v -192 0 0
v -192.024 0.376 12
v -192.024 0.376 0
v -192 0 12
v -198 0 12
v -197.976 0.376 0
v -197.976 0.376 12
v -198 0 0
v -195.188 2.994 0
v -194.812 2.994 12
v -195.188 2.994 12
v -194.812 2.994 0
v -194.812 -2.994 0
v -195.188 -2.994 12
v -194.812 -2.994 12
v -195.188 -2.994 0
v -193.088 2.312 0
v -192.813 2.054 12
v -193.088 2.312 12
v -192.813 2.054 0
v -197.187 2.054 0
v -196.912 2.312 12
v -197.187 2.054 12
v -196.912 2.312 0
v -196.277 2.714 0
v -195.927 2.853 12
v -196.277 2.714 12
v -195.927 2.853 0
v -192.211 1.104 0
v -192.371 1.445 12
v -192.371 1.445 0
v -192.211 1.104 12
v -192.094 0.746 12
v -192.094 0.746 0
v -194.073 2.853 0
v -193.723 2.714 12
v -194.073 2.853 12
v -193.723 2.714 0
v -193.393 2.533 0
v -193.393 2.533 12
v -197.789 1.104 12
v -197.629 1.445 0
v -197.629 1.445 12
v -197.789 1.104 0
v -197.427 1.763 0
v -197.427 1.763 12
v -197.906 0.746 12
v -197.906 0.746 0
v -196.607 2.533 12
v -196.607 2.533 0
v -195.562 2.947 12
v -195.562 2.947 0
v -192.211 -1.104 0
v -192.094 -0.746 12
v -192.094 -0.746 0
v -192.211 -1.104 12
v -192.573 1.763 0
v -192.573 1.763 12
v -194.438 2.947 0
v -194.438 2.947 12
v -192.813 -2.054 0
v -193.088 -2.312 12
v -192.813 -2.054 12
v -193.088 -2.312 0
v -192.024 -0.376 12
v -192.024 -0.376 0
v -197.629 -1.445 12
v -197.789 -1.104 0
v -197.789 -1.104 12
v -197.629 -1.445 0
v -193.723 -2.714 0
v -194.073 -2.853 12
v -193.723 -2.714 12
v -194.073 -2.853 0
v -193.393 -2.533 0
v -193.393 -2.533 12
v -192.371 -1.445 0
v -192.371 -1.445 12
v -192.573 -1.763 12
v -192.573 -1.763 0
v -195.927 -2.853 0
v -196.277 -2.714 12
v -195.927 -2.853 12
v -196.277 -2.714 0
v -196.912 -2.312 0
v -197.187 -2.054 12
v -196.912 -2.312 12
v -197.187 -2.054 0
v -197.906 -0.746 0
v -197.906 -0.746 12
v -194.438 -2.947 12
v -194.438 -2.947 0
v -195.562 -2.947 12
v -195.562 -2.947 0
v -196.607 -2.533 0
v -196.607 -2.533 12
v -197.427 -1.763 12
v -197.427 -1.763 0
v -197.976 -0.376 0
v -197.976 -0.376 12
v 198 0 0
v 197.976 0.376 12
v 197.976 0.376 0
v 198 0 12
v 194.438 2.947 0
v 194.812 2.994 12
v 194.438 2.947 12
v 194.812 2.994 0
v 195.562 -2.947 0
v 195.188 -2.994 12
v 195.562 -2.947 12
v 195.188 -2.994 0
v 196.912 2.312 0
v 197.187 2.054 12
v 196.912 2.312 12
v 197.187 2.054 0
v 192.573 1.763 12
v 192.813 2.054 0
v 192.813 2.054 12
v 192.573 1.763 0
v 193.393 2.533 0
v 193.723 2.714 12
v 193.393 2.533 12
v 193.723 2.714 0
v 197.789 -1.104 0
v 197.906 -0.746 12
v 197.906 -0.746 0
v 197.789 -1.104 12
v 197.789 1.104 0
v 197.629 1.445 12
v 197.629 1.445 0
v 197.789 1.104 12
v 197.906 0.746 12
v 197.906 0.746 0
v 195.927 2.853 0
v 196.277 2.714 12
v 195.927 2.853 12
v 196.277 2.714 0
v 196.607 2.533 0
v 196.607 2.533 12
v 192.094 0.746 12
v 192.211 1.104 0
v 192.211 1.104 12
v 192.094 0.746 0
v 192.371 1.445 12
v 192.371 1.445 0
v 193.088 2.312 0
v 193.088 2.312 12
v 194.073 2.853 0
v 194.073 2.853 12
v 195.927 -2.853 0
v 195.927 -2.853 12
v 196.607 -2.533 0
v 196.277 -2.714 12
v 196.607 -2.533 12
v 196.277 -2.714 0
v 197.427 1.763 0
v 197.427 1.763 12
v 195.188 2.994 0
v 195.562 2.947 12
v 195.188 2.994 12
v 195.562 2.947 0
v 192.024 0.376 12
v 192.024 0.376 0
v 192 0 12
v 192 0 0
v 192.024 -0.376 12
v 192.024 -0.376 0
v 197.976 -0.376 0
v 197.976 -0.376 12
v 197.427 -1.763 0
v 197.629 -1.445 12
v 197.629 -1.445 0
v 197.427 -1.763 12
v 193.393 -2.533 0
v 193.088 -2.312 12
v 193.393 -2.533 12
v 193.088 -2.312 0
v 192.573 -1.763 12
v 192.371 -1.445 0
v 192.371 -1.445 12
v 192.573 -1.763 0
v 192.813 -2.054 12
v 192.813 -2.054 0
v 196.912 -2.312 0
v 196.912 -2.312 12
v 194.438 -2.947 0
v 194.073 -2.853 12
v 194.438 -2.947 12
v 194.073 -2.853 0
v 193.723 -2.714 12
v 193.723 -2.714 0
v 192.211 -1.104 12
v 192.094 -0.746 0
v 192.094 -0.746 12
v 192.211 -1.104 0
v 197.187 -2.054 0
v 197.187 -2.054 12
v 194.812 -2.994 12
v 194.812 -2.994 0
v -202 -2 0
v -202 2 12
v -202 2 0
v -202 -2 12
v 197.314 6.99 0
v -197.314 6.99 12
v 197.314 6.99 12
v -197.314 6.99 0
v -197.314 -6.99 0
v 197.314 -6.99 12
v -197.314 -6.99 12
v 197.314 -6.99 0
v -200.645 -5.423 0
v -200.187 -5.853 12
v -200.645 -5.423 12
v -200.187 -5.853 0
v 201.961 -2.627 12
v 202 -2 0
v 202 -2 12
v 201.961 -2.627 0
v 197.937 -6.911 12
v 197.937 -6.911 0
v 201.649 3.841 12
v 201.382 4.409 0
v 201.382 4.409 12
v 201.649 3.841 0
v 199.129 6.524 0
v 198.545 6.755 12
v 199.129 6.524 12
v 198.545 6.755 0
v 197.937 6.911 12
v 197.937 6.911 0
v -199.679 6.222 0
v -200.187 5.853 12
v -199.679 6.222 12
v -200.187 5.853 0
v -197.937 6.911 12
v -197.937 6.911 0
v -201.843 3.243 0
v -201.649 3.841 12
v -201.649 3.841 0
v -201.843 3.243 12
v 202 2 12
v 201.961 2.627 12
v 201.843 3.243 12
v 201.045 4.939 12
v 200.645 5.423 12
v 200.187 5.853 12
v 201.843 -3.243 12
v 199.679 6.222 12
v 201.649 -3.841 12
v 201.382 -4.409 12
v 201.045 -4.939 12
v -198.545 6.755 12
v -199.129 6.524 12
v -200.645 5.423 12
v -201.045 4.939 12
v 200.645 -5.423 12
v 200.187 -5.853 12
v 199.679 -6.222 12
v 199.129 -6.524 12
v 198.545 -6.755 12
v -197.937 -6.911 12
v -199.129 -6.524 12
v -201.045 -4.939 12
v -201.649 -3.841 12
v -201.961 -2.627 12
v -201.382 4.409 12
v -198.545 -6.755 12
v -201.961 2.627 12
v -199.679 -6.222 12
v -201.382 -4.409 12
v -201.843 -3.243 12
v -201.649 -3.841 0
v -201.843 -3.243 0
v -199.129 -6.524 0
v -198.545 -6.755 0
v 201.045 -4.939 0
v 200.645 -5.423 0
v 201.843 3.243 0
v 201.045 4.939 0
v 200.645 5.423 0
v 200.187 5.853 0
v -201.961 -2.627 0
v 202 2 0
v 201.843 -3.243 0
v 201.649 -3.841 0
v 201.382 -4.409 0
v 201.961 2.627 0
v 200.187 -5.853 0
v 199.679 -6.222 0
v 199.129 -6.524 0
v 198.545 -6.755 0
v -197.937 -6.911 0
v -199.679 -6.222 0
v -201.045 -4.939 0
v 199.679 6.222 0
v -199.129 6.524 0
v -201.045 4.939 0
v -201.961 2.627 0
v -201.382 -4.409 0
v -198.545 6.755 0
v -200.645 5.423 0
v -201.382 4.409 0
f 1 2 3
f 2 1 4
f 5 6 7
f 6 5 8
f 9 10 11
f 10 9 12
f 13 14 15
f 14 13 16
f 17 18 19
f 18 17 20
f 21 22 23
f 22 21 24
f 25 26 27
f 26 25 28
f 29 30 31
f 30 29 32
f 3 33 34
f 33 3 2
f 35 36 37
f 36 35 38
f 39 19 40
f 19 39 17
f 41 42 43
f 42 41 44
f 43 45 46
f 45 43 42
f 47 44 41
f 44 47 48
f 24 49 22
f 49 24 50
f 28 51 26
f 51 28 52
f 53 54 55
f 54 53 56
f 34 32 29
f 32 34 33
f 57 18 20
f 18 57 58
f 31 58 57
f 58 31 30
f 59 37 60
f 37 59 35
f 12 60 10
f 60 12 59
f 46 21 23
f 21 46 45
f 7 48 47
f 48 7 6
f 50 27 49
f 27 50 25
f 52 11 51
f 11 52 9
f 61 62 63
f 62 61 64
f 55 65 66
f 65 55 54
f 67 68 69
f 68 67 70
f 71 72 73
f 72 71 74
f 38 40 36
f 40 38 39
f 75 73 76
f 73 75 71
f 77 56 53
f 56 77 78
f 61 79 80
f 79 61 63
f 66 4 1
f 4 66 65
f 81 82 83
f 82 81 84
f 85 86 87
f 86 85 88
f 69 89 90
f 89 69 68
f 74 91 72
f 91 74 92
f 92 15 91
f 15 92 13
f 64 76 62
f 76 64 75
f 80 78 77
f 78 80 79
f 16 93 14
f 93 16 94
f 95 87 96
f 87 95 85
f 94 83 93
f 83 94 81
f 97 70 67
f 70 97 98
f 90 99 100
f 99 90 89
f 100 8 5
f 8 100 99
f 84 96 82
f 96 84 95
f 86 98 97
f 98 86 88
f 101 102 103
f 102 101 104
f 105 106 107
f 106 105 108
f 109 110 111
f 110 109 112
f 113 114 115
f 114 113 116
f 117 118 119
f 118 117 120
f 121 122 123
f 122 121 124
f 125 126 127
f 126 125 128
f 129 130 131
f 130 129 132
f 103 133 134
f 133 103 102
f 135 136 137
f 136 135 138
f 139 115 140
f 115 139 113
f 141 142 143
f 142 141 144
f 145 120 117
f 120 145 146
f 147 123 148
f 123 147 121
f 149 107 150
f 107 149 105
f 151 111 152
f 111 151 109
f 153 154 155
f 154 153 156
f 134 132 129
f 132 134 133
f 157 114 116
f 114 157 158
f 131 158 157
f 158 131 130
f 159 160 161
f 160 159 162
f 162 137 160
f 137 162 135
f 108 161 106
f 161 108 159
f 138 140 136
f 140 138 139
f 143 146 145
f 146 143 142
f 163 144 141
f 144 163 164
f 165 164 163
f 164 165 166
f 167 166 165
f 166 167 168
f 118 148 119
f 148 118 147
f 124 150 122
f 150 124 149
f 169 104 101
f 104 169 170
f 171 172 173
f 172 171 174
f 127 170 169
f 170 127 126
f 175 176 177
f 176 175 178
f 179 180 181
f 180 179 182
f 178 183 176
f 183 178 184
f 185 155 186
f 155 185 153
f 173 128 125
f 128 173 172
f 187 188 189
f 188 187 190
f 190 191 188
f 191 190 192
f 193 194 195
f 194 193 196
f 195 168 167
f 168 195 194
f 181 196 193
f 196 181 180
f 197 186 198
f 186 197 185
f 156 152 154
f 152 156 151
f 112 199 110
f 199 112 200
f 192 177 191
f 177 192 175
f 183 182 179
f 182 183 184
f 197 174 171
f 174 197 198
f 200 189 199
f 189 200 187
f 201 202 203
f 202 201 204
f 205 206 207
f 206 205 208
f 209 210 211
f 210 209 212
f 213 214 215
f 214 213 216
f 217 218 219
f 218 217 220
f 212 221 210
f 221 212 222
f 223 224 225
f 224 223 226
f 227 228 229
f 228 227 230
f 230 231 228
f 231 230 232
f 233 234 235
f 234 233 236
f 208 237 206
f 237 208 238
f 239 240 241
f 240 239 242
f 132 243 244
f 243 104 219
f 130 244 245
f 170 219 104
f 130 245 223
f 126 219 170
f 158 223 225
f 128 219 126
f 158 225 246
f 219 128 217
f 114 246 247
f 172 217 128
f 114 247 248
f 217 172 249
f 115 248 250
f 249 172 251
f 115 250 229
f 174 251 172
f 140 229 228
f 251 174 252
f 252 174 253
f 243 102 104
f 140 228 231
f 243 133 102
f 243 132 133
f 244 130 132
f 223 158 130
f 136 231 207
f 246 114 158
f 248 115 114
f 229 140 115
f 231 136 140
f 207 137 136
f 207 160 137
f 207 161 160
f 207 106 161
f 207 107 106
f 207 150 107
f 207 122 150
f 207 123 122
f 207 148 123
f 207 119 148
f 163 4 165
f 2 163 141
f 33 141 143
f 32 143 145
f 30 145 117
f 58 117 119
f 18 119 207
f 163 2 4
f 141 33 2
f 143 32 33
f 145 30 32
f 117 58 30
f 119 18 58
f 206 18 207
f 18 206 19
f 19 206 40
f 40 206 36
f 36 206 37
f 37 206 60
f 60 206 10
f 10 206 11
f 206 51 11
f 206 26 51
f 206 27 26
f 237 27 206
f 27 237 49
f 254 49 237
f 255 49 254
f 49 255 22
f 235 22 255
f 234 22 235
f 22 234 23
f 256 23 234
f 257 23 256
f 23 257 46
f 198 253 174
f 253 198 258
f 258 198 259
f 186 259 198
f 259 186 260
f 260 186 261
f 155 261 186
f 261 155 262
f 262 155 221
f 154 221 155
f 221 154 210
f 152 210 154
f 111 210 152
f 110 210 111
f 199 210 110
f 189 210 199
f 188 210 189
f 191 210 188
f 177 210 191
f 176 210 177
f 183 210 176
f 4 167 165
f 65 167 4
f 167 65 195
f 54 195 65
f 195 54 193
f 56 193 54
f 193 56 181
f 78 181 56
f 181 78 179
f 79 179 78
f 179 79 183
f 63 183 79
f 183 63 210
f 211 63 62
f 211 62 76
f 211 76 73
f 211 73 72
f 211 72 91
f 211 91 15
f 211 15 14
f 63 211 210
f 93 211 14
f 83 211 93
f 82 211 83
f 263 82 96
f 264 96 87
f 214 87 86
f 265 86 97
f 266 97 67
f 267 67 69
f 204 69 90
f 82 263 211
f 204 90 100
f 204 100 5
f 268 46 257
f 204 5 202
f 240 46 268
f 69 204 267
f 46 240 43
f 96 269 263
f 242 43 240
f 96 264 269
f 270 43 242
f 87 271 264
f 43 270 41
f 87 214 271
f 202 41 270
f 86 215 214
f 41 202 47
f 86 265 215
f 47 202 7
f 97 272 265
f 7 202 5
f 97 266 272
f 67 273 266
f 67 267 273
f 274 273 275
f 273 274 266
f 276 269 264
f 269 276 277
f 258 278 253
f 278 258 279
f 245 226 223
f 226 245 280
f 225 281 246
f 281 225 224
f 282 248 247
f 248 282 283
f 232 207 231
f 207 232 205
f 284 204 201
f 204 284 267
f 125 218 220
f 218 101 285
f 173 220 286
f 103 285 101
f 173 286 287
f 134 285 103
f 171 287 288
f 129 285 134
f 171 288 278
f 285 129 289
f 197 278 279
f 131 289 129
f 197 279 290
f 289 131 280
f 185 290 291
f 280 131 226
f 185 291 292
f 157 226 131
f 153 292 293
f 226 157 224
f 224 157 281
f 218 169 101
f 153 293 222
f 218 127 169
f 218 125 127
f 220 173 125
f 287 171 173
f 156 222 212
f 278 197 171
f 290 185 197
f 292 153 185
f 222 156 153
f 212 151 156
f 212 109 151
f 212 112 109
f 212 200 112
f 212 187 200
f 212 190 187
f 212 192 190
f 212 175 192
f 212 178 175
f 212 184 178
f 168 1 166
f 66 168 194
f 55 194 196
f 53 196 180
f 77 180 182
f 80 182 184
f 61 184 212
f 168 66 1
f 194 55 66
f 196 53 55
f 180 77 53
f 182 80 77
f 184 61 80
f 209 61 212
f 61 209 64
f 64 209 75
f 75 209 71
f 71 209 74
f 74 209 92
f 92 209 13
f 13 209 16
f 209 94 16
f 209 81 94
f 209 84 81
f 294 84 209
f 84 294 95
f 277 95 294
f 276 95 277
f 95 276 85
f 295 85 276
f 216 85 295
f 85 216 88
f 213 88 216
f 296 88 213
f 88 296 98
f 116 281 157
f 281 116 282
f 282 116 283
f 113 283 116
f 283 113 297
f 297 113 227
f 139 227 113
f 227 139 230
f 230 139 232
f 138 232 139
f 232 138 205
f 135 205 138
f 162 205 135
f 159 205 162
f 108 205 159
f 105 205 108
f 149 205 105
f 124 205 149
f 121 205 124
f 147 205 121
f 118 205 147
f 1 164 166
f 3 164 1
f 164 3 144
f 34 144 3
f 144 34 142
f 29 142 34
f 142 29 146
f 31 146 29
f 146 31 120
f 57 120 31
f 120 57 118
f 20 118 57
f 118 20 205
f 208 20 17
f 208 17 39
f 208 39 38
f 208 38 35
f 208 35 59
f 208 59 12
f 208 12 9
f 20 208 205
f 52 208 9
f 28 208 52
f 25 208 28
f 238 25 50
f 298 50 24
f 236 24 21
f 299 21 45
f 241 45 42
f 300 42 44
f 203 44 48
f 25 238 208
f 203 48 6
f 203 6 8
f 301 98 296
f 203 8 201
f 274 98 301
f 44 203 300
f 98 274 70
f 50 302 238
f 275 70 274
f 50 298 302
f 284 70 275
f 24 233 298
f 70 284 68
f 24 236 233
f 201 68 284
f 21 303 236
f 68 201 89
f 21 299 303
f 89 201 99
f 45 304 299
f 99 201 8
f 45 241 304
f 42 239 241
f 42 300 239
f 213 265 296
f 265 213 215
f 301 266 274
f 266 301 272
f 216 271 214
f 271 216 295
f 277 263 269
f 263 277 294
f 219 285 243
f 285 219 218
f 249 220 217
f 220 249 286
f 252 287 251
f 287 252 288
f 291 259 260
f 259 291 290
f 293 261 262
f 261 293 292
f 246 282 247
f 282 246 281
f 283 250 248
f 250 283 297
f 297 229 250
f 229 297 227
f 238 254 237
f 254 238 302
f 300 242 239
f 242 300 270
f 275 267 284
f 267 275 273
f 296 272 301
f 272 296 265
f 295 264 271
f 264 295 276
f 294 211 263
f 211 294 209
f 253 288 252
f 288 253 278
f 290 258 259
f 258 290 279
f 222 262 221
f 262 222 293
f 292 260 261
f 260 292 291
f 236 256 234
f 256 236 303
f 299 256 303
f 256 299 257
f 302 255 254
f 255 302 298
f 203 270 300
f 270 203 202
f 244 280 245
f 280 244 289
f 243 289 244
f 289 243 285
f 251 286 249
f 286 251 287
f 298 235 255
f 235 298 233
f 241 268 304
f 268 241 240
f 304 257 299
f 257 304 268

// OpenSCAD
$fn = 50;


difference() {
	union() {
		hull() {
			translate(v = [-197.0000000000, 2.0000000000, 0]) {
				cylinder(h = 12, r = 5);
			}
			translate(v = [197.0000000000, 2.0000000000, 0]) {
				cylinder(h = 12, r = 5);
			}
			translate(v = [-197.0000000000, -2.0000000000, 0]) {
				cylinder(h = 12, r = 5);
			}
			translate(v = [197.0000000000, -2.0000000000, 0]) {
				cylinder(h = 12, r = 5);
			}
		}
	}
	union() {
		translate(v = [-195.0000000000, 0.0000000000, -100.0000000000]) {
			cylinder(h = 200, r = 3.0000000000);
		}
		translate(v = [-195.0000000000, 0.0000000000, -100.0000000000]) {
			cylinder(h = 200, r = 3.0000000000);
		}
		translate(v = [195.0000000000, 0.0000000000, -100.0000000000]) {
			cylinder(h = 200, r = 3.0000000000);
		}
		translate(v = [195.0000000000, 0.0000000000, -100.0000000000]) {
			cylinder(h = 200, r = 3.0000000000);
		}
	}
}
